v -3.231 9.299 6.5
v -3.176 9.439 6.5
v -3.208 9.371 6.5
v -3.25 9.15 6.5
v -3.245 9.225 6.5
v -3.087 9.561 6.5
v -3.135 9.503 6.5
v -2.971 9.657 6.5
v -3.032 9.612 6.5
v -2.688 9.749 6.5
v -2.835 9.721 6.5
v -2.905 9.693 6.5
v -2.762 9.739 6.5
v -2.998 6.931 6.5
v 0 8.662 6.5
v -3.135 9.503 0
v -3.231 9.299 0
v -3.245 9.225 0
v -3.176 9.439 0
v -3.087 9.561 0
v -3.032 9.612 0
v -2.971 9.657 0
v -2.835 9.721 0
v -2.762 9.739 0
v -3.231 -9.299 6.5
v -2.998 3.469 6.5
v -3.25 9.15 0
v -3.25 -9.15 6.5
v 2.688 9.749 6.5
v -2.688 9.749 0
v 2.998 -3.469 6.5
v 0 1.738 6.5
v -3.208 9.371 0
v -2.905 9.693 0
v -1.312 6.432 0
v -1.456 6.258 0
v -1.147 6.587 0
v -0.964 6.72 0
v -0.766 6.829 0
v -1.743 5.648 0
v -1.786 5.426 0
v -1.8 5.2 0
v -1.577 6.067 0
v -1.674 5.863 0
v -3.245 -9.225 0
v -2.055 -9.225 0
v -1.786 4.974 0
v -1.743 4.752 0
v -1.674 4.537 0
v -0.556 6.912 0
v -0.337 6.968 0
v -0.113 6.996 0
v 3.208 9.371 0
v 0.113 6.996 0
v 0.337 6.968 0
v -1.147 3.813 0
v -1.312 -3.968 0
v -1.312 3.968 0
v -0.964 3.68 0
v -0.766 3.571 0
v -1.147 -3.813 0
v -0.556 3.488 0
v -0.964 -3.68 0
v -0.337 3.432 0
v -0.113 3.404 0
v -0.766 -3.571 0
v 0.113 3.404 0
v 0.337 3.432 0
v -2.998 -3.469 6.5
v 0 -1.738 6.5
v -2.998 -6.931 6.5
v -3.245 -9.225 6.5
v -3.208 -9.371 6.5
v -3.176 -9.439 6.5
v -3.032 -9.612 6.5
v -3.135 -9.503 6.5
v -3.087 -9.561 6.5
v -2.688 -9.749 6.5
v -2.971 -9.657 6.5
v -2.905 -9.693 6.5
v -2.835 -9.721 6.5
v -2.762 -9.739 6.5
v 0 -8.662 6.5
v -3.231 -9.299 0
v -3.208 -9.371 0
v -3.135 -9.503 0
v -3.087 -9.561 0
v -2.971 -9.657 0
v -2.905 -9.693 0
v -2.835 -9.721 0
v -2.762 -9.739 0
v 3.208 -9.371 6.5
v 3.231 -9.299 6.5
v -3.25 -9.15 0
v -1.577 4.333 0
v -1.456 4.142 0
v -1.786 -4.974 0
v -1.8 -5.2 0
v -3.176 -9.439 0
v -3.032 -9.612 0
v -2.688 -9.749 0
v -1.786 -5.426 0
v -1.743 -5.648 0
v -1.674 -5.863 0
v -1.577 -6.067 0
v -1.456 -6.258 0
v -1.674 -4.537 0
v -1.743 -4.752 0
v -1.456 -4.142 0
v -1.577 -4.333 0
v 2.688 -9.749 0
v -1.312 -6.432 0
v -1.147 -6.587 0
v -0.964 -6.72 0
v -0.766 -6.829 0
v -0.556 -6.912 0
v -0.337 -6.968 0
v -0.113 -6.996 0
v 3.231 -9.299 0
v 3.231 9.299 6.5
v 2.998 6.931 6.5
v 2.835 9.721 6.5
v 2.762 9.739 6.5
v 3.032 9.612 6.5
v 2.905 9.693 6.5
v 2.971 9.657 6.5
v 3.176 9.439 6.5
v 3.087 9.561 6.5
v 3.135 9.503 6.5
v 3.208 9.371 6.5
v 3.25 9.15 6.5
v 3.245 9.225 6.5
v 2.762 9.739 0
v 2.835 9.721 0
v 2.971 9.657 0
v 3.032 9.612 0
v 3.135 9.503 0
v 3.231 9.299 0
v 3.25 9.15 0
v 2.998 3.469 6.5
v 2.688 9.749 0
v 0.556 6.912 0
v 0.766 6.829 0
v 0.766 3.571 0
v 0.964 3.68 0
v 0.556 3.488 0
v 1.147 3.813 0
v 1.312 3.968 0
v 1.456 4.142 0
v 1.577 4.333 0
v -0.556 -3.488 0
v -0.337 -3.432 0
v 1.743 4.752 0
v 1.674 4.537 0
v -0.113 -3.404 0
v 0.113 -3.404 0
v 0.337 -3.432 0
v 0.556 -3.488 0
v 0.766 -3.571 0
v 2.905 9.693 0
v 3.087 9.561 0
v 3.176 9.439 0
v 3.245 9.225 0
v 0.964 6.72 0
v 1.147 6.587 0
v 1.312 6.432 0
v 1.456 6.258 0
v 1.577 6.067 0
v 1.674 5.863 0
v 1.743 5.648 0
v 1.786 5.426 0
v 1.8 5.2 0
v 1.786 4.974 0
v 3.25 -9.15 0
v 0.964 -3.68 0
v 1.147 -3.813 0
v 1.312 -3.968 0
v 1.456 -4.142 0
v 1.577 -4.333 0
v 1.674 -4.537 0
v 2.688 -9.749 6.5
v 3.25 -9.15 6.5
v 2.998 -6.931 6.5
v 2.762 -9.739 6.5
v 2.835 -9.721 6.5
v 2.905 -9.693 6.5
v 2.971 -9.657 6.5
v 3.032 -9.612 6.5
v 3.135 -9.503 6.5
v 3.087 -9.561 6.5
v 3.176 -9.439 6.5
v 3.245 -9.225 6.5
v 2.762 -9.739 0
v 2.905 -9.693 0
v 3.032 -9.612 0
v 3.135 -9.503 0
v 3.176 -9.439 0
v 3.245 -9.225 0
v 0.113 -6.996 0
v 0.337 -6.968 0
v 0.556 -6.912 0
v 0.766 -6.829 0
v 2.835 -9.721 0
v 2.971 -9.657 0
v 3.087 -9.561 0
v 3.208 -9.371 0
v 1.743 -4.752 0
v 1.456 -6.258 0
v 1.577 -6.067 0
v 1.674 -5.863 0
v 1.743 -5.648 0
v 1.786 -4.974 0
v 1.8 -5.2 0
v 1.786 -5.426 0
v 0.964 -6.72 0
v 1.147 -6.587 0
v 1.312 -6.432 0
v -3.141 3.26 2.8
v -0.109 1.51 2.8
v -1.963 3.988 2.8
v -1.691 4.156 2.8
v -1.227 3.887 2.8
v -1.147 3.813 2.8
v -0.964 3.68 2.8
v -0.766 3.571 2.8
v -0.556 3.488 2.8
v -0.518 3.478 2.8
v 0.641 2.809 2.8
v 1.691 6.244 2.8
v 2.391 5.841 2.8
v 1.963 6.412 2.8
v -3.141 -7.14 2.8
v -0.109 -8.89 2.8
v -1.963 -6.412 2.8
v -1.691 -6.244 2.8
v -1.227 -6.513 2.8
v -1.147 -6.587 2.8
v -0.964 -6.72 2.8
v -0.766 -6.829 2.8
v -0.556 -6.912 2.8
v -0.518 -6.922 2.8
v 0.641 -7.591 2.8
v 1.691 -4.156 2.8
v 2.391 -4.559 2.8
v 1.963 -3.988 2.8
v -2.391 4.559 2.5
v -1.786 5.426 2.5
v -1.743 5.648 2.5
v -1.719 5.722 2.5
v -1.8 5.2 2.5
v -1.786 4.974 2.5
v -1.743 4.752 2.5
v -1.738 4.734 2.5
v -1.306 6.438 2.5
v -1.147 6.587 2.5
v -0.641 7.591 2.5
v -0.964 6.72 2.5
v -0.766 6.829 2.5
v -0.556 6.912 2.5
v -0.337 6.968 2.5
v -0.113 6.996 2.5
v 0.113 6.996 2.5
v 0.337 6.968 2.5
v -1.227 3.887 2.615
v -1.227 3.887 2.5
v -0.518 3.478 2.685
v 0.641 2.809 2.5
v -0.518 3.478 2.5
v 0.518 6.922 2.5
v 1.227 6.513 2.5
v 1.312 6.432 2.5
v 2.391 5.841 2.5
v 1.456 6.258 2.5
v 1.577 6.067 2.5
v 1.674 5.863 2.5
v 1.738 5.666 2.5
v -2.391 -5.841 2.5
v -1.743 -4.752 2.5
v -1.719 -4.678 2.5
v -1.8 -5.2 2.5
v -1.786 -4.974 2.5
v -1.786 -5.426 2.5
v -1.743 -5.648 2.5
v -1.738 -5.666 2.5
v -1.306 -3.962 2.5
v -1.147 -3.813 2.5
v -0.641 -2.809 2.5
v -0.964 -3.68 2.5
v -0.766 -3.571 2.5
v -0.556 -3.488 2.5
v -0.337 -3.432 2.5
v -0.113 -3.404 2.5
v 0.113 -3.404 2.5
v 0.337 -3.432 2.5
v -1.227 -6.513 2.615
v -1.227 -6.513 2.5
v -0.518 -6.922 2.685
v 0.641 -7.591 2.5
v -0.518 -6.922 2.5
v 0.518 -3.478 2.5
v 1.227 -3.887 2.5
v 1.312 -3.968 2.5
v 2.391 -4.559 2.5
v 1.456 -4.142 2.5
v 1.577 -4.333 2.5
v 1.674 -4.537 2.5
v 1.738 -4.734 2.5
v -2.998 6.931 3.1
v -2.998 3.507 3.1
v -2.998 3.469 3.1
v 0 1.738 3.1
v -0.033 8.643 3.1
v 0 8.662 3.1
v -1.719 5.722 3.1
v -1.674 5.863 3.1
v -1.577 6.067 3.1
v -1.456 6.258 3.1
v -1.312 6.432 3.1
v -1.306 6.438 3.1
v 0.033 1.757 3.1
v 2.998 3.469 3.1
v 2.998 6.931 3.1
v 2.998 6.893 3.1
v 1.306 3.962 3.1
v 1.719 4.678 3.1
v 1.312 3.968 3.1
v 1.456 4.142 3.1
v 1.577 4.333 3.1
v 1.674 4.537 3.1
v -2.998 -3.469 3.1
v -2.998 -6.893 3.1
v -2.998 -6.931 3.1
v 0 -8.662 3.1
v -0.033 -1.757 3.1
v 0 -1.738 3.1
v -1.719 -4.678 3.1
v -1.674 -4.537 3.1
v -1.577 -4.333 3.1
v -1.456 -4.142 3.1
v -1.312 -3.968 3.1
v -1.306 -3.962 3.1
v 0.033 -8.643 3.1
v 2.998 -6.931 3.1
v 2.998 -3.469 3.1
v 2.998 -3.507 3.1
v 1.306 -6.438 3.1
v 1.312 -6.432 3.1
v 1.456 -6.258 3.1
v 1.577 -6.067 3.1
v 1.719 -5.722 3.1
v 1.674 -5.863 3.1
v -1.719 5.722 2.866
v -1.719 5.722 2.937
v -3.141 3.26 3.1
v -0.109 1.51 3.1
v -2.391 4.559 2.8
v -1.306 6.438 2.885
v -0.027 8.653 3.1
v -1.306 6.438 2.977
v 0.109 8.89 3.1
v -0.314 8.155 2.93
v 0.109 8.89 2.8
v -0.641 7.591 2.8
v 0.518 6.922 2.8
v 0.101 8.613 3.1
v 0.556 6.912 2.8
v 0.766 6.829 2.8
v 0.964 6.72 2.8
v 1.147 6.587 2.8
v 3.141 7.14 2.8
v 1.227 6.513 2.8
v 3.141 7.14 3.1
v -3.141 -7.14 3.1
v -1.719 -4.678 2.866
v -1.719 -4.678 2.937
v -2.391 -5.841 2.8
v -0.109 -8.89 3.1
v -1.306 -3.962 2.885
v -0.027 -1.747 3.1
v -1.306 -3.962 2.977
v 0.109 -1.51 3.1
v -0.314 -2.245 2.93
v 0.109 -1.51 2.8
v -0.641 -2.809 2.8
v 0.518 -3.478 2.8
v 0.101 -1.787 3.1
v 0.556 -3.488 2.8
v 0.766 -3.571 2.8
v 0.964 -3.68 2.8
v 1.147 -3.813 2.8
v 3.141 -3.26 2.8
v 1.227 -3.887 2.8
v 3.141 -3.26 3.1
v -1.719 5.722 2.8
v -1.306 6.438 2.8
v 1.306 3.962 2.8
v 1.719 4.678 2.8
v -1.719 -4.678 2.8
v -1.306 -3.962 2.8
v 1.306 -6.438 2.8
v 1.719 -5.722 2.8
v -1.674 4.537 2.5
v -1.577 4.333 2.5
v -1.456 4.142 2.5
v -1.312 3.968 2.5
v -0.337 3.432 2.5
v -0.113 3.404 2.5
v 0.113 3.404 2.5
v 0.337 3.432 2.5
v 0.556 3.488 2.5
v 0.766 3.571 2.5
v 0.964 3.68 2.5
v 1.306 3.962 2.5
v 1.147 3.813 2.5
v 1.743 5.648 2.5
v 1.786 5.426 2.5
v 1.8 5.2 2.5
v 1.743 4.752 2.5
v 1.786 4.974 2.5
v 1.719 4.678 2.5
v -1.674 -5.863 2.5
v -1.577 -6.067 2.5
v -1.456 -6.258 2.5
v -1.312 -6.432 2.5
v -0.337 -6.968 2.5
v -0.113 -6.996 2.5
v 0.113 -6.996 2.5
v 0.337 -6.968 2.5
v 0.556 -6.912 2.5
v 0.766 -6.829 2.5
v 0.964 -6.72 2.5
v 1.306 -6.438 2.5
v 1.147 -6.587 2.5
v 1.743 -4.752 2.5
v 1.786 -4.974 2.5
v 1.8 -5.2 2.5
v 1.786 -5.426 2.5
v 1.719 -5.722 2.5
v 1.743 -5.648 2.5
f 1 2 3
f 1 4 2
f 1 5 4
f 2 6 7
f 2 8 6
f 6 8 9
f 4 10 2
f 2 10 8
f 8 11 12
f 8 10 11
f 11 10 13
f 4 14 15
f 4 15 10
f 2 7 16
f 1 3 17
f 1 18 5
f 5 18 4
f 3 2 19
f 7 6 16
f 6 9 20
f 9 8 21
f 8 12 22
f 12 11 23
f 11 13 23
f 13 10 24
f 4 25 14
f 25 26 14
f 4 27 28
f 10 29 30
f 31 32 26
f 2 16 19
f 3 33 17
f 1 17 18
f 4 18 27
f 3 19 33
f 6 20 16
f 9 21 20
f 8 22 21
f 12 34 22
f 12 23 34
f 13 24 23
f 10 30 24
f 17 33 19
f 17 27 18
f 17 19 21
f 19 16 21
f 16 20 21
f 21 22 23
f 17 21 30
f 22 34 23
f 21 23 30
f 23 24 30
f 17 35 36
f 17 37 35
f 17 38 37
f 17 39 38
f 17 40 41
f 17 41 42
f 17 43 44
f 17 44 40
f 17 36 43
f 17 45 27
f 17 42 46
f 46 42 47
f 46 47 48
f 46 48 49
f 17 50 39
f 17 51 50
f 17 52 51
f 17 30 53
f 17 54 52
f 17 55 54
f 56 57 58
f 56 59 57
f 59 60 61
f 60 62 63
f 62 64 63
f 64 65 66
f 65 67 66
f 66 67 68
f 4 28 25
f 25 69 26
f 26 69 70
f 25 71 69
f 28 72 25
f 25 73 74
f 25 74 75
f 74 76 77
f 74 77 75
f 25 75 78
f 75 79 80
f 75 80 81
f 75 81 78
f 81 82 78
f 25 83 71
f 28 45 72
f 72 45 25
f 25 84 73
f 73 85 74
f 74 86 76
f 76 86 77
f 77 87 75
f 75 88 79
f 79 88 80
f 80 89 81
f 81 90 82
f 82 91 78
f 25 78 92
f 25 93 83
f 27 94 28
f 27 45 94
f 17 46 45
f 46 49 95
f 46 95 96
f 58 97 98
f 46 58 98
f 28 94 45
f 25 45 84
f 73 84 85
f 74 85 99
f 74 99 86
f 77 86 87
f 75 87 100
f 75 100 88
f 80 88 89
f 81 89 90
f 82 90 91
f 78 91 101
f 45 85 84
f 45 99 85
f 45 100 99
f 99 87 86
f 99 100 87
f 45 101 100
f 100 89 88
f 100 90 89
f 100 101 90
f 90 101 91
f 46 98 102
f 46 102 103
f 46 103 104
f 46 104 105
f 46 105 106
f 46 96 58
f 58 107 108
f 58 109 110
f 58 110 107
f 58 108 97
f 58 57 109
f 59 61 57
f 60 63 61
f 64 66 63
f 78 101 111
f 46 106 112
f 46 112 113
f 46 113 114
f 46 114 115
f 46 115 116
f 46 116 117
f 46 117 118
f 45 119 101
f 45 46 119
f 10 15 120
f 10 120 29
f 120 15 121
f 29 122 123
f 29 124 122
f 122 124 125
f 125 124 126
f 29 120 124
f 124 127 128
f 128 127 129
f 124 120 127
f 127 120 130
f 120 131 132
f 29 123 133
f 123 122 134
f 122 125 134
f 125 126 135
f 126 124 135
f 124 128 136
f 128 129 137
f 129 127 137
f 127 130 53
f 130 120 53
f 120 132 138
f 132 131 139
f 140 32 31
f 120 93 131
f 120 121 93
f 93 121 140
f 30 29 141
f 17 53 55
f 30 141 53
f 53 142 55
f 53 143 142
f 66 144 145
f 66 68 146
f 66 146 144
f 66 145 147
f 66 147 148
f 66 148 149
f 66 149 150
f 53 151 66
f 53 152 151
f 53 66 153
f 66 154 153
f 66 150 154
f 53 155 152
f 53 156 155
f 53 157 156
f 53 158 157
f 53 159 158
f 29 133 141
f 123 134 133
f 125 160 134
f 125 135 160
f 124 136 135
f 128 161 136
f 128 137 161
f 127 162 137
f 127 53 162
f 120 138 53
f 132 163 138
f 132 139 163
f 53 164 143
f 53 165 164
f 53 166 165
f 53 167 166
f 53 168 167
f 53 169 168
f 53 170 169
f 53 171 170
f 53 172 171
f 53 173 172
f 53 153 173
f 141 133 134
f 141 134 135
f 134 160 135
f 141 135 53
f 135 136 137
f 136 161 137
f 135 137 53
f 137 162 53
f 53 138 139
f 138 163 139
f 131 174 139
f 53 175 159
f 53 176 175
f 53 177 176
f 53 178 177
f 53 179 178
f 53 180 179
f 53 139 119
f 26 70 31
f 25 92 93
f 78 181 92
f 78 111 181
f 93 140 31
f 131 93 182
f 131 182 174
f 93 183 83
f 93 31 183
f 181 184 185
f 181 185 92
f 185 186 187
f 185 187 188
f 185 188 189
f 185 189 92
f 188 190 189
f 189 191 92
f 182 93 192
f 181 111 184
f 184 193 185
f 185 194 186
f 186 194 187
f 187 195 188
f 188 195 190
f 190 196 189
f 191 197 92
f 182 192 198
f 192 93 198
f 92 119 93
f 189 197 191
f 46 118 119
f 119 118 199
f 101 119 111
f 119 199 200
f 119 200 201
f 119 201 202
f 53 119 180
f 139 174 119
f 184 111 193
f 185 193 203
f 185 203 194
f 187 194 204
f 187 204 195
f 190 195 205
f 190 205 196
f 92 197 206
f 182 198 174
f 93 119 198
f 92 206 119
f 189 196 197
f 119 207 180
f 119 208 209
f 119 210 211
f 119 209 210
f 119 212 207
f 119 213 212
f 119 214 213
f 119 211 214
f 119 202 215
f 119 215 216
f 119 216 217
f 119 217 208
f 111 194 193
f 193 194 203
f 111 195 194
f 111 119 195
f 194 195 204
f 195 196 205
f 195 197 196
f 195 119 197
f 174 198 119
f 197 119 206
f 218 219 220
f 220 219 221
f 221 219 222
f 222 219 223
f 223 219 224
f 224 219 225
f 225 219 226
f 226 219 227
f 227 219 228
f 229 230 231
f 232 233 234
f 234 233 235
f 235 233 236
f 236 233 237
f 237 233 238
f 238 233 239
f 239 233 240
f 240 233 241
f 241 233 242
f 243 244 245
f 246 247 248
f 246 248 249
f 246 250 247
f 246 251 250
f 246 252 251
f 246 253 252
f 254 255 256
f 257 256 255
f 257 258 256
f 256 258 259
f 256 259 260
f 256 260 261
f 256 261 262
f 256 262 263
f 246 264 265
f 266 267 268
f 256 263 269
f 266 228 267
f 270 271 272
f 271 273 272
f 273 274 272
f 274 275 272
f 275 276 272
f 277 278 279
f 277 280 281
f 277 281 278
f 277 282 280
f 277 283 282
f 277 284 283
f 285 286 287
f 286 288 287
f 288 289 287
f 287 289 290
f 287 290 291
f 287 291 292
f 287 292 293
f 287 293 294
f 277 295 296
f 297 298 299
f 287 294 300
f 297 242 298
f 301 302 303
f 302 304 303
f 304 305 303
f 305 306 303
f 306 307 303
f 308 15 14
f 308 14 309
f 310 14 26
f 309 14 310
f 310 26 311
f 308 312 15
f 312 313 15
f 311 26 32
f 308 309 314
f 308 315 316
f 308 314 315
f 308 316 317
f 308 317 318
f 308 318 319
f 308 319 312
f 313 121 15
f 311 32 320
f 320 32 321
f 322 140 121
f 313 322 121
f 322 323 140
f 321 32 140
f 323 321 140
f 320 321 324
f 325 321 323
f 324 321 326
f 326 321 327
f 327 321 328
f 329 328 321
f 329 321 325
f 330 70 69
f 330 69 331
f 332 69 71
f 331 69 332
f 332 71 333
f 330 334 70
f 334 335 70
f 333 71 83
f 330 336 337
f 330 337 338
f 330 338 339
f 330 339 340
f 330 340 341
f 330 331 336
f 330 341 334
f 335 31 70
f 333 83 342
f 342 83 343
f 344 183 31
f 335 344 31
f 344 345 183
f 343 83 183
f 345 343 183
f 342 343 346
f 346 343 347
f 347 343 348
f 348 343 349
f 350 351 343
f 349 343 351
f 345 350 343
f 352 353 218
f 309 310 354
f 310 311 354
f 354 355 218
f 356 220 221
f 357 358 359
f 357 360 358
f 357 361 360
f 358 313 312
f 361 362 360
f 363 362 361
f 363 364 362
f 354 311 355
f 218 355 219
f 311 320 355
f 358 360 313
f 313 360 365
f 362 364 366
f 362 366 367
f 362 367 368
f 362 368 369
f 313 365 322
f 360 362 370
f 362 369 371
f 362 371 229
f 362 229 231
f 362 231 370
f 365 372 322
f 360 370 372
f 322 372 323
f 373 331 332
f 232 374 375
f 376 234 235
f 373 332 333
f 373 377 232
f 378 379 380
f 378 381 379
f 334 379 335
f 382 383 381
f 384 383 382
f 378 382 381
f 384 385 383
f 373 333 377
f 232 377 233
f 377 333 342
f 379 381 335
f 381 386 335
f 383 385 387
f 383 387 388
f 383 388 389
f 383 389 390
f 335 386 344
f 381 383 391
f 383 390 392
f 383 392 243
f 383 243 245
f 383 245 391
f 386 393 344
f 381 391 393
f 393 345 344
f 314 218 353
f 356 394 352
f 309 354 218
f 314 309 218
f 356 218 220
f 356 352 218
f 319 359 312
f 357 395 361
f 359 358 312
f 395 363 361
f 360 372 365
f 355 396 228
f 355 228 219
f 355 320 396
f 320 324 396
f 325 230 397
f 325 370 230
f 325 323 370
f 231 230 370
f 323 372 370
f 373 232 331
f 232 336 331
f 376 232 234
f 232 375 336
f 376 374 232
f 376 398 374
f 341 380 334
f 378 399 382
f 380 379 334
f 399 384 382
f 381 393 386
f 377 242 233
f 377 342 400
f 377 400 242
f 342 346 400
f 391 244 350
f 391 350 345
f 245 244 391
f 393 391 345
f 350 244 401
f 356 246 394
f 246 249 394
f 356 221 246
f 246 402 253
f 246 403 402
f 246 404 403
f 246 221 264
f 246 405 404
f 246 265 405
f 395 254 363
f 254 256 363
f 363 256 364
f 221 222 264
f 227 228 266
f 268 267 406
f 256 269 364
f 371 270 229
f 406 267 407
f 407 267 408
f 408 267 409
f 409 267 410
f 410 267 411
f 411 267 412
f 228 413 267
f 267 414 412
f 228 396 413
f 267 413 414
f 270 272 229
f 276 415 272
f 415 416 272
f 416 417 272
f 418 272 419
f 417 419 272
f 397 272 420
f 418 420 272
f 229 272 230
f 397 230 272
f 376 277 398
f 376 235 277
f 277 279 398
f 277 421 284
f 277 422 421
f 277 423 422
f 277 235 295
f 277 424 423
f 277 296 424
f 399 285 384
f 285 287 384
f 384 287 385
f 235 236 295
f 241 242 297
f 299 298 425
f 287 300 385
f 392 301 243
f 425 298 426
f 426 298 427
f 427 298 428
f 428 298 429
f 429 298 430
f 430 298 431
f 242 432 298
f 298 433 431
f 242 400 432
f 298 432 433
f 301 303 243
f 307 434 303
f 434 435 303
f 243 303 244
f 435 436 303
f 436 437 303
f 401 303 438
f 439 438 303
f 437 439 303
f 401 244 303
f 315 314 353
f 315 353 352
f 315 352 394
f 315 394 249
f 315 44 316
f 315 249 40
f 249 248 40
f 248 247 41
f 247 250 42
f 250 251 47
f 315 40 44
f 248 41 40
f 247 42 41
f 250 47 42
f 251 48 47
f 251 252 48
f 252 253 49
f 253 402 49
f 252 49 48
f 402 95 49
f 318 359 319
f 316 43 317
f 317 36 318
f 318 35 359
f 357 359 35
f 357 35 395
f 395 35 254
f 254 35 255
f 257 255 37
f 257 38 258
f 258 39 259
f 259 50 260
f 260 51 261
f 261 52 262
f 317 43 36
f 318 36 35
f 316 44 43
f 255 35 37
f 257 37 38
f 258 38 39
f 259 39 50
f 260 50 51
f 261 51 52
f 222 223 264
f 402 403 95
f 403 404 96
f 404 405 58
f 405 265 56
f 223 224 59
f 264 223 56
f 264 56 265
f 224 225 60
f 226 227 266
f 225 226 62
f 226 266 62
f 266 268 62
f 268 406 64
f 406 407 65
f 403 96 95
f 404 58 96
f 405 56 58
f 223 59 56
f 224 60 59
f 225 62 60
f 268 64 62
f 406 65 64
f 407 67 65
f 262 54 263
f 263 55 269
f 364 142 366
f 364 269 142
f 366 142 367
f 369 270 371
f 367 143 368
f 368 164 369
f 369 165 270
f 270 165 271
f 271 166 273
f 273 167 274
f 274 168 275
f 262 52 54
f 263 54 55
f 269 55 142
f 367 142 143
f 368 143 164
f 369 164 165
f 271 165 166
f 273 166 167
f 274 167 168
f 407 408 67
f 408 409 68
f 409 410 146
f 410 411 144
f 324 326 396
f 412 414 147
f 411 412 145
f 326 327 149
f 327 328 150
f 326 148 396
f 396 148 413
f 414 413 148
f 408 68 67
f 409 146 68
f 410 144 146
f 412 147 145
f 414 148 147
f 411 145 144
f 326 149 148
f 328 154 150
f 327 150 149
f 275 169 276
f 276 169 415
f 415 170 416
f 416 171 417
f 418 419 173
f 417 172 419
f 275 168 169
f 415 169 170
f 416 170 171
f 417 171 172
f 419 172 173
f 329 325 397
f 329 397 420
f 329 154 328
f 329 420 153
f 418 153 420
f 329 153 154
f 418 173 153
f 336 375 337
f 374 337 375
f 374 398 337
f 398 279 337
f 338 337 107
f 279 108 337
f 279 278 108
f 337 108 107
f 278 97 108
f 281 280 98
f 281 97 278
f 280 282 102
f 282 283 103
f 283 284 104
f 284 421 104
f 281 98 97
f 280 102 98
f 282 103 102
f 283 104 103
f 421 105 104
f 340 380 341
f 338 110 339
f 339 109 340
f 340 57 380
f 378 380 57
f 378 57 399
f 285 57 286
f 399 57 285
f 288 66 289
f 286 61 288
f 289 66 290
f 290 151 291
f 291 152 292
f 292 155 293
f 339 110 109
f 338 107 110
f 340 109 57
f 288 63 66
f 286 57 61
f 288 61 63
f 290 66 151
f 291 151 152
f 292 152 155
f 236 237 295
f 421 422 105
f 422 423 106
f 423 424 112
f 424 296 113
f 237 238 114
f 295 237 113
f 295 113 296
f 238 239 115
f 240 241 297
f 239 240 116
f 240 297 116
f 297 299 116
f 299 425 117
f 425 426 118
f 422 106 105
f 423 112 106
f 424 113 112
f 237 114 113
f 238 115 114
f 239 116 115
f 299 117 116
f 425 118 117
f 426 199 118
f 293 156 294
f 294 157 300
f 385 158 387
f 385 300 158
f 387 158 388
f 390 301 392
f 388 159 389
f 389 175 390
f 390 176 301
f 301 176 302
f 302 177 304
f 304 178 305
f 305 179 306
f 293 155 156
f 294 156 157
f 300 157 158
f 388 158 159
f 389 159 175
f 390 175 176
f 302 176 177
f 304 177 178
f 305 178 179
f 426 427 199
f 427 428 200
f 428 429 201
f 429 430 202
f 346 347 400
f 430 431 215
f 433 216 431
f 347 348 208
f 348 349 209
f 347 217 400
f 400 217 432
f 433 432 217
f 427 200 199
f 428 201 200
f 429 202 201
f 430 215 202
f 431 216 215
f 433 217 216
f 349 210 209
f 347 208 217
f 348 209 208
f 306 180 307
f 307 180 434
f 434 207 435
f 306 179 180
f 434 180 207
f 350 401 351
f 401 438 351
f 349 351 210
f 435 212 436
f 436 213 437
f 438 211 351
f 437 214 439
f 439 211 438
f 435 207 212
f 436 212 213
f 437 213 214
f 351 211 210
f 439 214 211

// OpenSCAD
$fn = 50;

difference() {
	union() {
		translate(v = [-14.5, 0, -4.5]) {
			rotate(a = [180, 0, 0]) {
				difference() {
					union() {
						translate(v = [14.5, 0, -11.0]) {
							hull() {
								translate(v = [-2.65, 9.15, 0]) {
									cylinder(h = 6.5, r = 0.6);
								}
								translate(v = [2.65, 9.15, 0]) {
									cylinder(h = 6.5, r = 0.6);
								}
								translate(v = [-2.65, -9.15, 0]) {
									cylinder(h = 6.5, r = 0.6);
								}
								translate(v = [2.65, -9.15, 0]) {
									cylinder(h = 6.5, r = 0.6);
								}
							}
						}
					}
					union() {
						translate(v = [14.5, -5.2, -7.6]) {
							rotate(a = [180, 0, 30]) {
								difference() {
									union() {
										translate(v = [-1.75, -3.25, -0.3]) {
											cube(size = [3.5, 6.5, 0.3]);
										}
										translate(v = [-1.75, -1.75, -0.6]) {
											cube(size = [3.5, 3.5, 0.3]);
										}
										translate(v = [-1.75, -3.25, 53.4]) {
											cube(size = [3.5, 6.5, 0.3]);
										}
										translate(v = [-1.75, -1.75, 53.699999999999996]) {
											cube(size = [3.5, 3.5, 0.3]);
										}
										linear_extrude(height = 103.4) {
											polygon(points = [[3.4619999999999997, 0.0], [1.7310000000000003, 2.9981799479017264], [-1.7309999999999992, 2.9981799479017264], [-3.4619999999999997, 4.2397272186481365e-16], [-1.7310000000000014, -2.998179947901726], [1.7309999999999977, -2.9981799479017277]]);
										}
										translate(v = [-1.75, -3.25, -0.3]) {
											cube(size = [3.5, 6.5, 0.3]);
										}
										translate(v = [-1.75, -1.75, -0.6]) {
											cube(size = [3.5, 3.5, 0.3]);
										}
										translate(v = [-1.75, -3.25, 103.4]) {
											cube(size = [3.5, 6.5, 0.3]);
										}
										translate(v = [-1.75, -1.75, 103.7]) {
											cube(size = [3.5, 3.5, 0.3]);
										}
										translate(v = [-1.75, -3.25, -0.3]) {
											cube(size = [3.5, 6.5, 0.3]);
										}
										translate(v = [-1.75, -1.75, -0.6]) {
											cube(size = [3.5, 3.5, 0.3]);
										}
										translate(v = [-1.75, -3.25, 153.4]) {
											cube(size = [3.5, 6.5, 0.3]);
										}
										translate(v = [-1.75, -1.75, 153.70000000000002]) {
											cube(size = [3.5, 3.5, 0.3]);
										}
									}
									union();
								}
							}
						}
						translate(v = [14.5, 5.2, -7.6]) {
							rotate(a = [180, 0, 30]) {
								difference() {
									union() {
										translate(v = [-1.75, -3.25, -0.3]) {
											cube(size = [3.5, 6.5, 0.3]);
										}
										translate(v = [-1.75, -1.75, -0.6]) {
											cube(size = [3.5, 3.5, 0.3]);
										}
										translate(v = [-1.75, -3.25, 53.4]) {
											cube(size = [3.5, 6.5, 0.3]);
										}
										translate(v = [-1.75, -1.75, 53.699999999999996]) {
											cube(size = [3.5, 3.5, 0.3]);
										}
										linear_extrude(height = 103.4) {
											polygon(points = [[3.4619999999999997, 0.0], [1.7310000000000003, 2.9981799479017264], [-1.7309999999999992, 2.9981799479017264], [-3.4619999999999997, 4.2397272186481365e-16], [-1.7310000000000014, -2.998179947901726], [1.7309999999999977, -2.9981799479017277]]);
										}
										translate(v = [-1.75, -3.25, -0.3]) {
											cube(size = [3.5, 6.5, 0.3]);
										}
										translate(v = [-1.75, -1.75, -0.6]) {
											cube(size = [3.5, 3.5, 0.3]);
										}
										translate(v = [-1.75, -3.25, 103.4]) {
											cube(size = [3.5, 6.5, 0.3]);
										}
										translate(v = [-1.75, -1.75, 103.7]) {
											cube(size = [3.5, 3.5, 0.3]);
										}
										translate(v = [-1.75, -3.25, -0.3]) {
											cube(size = [3.5, 6.5, 0.3]);
										}
										translate(v = [-1.75, -1.75, -0.6]) {
											cube(size = [3.5, 3.5, 0.3]);
										}
										translate(v = [-1.75, -3.25, 153.4]) {
											cube(size = [3.5, 6.5, 0.3]);
										}
										translate(v = [-1.75, -1.75, 153.70000000000002]) {
											cube(size = [3.5, 3.5, 0.3]);
										}
									}
									union();
								}
							}
						}
						translate(v = [14.5, -5.2, -12.0]) {
							cylinder(h = 8.5, r = 1.8);
						}
						translate(v = [14.5, 5.2, -12.0]) {
							cylinder(h = 8.5, r = 1.8);
						}
					}
				}
			}
		}
	}
	union();
}
